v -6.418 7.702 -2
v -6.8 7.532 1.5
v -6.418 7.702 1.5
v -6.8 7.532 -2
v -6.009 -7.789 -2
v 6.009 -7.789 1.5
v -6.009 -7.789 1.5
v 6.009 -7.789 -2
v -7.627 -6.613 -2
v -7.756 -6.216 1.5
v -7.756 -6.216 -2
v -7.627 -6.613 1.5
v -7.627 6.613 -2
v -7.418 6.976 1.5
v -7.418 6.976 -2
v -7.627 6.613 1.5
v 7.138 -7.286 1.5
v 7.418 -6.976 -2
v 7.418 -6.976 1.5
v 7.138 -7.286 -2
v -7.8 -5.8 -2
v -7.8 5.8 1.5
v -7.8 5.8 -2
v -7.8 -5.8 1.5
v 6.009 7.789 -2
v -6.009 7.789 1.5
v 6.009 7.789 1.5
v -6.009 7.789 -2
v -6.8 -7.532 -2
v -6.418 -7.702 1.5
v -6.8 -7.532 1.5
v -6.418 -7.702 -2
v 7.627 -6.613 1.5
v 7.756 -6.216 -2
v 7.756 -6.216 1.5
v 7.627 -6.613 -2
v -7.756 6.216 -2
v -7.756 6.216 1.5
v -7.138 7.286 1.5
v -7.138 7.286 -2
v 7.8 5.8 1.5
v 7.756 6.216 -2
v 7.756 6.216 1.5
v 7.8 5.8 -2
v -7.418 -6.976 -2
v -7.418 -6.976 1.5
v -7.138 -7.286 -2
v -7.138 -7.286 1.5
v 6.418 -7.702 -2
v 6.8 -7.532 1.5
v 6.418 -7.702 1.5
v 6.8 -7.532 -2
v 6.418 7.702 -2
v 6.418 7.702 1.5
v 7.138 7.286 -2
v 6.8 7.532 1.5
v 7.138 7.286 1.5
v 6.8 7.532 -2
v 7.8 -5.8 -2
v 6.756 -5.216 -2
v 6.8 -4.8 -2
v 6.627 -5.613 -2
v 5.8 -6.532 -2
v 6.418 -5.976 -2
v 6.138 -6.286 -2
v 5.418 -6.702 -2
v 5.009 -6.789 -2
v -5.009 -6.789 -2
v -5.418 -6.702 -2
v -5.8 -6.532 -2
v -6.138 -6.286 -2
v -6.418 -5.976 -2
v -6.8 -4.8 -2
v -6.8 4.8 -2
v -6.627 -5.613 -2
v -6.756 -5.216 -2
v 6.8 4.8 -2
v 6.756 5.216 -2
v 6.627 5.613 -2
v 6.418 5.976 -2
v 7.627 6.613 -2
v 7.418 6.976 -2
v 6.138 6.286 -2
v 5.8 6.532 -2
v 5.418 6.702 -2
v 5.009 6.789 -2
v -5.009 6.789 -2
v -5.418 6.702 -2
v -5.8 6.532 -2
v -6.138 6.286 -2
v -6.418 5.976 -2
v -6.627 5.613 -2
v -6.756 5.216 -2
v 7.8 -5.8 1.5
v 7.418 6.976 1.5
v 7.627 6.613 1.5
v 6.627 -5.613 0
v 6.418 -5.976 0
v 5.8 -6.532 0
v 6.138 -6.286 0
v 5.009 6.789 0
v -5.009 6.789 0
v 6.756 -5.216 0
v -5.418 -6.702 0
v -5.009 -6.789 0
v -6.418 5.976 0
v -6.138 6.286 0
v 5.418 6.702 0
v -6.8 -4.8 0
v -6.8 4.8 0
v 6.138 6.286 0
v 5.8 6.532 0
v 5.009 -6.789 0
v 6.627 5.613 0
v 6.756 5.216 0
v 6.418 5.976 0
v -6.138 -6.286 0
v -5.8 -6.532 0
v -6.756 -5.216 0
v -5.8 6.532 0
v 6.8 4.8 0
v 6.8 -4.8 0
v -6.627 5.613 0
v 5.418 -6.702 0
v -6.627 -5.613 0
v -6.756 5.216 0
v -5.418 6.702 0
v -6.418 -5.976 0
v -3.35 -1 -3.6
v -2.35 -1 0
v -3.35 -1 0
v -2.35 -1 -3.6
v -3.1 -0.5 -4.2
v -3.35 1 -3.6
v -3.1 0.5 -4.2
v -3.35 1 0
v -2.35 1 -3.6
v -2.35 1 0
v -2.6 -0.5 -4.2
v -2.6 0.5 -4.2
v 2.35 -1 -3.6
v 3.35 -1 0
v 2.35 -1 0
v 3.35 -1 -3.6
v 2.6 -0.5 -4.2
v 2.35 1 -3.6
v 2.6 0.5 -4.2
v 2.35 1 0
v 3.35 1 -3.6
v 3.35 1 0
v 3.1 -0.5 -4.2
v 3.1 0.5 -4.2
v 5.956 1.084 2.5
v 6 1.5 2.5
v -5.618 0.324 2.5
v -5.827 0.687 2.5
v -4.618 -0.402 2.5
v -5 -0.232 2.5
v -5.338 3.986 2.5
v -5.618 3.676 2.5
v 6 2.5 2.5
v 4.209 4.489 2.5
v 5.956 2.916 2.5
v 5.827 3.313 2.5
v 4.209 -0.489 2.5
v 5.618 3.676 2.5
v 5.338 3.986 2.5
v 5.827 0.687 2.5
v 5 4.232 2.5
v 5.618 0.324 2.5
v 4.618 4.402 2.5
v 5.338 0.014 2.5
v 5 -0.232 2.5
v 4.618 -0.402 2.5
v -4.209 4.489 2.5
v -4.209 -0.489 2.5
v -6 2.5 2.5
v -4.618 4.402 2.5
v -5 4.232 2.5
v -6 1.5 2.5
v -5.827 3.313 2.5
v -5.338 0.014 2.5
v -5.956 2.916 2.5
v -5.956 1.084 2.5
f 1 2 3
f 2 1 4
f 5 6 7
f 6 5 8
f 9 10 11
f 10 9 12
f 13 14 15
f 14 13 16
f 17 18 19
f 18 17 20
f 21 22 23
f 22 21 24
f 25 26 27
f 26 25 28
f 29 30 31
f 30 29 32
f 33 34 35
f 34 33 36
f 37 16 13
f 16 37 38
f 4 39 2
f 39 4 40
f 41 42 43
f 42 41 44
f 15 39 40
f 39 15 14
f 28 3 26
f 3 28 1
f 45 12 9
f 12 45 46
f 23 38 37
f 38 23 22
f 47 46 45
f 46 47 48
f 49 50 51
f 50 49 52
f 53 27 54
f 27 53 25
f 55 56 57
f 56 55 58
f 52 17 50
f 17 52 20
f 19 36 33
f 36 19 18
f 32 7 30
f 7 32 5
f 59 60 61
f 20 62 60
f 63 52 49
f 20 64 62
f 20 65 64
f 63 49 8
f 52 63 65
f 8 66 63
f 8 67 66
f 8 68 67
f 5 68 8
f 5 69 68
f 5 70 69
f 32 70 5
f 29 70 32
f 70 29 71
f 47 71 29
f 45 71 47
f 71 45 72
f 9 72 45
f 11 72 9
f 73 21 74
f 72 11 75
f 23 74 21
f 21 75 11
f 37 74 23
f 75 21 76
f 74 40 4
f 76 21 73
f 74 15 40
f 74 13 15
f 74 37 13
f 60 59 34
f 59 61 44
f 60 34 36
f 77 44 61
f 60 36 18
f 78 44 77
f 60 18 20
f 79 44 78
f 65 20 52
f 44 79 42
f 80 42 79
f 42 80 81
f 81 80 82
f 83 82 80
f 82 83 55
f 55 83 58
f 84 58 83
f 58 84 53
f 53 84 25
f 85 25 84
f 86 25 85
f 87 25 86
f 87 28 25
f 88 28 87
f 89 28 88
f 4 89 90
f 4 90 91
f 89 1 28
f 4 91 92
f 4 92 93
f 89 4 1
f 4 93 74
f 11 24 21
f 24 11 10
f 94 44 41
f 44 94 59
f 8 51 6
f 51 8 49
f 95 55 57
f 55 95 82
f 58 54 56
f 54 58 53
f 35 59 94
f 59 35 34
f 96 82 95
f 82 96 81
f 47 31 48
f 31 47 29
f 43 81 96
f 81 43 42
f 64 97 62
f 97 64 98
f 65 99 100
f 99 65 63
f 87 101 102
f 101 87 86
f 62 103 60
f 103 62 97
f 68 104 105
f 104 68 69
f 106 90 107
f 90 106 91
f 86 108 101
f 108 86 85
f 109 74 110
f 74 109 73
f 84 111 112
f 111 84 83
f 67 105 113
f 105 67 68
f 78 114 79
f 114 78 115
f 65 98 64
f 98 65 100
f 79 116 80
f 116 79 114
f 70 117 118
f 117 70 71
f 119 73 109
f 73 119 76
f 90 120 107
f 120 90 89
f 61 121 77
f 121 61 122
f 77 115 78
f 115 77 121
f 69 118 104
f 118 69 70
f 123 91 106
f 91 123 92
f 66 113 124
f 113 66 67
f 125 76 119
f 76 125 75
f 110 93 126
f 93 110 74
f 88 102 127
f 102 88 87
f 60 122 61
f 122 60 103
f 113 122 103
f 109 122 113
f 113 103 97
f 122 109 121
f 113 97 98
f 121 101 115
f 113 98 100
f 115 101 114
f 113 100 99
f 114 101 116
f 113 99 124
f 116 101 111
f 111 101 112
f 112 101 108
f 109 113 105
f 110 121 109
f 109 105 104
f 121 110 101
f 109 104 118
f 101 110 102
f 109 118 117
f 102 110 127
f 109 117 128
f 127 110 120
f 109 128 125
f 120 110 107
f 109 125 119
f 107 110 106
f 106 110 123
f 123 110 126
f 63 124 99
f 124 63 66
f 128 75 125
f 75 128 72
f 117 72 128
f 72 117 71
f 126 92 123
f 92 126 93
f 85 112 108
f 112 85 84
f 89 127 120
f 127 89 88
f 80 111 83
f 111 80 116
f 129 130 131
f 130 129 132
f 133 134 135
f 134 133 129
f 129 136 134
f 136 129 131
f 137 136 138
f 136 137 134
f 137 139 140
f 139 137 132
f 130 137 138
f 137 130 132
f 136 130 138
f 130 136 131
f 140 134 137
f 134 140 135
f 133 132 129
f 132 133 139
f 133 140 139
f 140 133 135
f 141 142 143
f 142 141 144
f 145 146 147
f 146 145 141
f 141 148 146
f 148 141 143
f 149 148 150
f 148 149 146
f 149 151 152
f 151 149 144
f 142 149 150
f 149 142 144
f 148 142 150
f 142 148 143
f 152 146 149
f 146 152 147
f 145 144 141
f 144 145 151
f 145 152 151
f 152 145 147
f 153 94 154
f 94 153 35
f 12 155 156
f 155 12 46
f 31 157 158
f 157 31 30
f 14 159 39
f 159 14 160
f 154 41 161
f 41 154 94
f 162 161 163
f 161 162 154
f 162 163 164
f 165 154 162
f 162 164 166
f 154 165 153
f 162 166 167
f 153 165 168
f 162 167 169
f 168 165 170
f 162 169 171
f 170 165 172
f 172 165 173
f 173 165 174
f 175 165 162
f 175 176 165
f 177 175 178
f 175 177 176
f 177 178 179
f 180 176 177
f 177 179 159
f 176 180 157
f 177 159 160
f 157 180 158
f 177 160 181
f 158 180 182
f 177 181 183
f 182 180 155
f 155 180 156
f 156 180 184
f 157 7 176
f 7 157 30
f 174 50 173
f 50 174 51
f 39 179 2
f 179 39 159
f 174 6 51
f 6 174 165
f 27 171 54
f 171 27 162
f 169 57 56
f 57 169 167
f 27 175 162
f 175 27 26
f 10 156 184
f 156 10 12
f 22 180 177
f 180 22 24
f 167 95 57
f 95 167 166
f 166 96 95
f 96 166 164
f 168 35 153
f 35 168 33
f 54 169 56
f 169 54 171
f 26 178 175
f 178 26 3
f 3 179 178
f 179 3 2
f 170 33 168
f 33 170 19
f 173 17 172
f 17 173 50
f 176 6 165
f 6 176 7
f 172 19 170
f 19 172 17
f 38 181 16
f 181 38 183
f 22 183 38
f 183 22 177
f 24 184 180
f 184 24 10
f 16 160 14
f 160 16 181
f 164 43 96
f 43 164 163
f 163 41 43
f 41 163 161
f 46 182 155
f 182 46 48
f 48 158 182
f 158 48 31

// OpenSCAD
// file: ../../lib/utils.scad
// 角丸のプレート
module rounded_plate(x, y, r) {
  thickness = 0.0001;
  minkowski () {
    cube([x-r*2, y-r*2, thickness], center = true);
    cylinder(r = r, h = thickness, $fs = 0.1);
  }
}

// ベーシックなキーキャップの外観を定義
module keycap_basic_outer_shape(bottom_size, middle_size, top_size, top_height, skert_height, side_r) {
  hull () {
    translate([0, 0, top_height])
    rounded_plate(top_size, top_size, side_r);
    
    if(middle_size > 0) {
      translate([0, 0, 0])
      rounded_plate(middle_size, middle_size, side_r);
    }
    
    translate([0, 0, -skert_height])
    rounded_plate(bottom_size, bottom_size, side_r);
  }
}

// chocで使われる一般的なキーキャップの形状を定義
module keycap_basic_shape(
  top_size,
  head_height,
  middle_size,
  skert_height,
  bottom_size,
  thickness = 1.0,
  side_r = 1.0) {
  difference () {
    // 外形
    keycap_basic_outer_shape(bottom_size, middle_size, top_size, head_height, skert_height, side_r);
    // くり抜くための外形
    keycap_basic_outer_shape(bottom_size - thickness * 2, middle_size - thickness * 2, top_size - thickness * 2, 0, skert_height+0.005, side_r);
  }
}


// cylindricalな凹みを作る
module head_cylindrical_depress(top_size, top_height, depth) {
  function dish_r(w, d) = (w * w + 4 * d * d) / (8 * d);
  
  hull() {
    angle = 0;
    translate([0, 0, top_height]);
    rotate([- angle, 0, 0])
    translate([0, 0, dish_r(top_size, depth) - depth+top_height])
    rotate([90, 0, 0])
    cylinder(r = dish_r(top_size, depth), h = 60, /* 適当に十分な長さ */ center = true);
  }
}

// Generate dome sphere object
// calc r parameter on https://gist.github.com/masuidrive/b34472d82b07d0efead83aedf5579b78
module dome(width, height, r=0) {
  calc_width = 2 * sqrt(r^2 - (r - height)^2);

  if(abs(width - calc_width) > 0.1) {
    echo("><><><><><><><><><><");
    echo("WARNING: dome arguments are not correct, should be width ", calc_width);
  }

  difference(){
    translate([0, 0, height-r])
      sphere(r = r, $fn = 100);
    translate([0, 0, -r])
      cube([r*2, r*2, r*2], center = true);
  }
}

// https://qiita.com/zk_phi/items/ab99315ebaef66e84aa0
// https://bebebe.hatenablog.jp/entry/2019/06/04/232501
// https://qiita.com/zk_phi/items/ab99315ebaef66e84aa0
// file: ../../lib/choc.scad
// ChocV1の足を作る
module kailh_choc_v1_stem() {
  leg_length = 3.6;
  thin_length = 0.6;

  for (z = [-2.85, 2.85]) {
      translate([z, 0, -leg_length/2])
        hull() {
          cube([1, 2, leg_length], center=true);
          translate([0, 0, -(leg_length/2)-thin_length])
            cube([0.5, 1, 0.001], center=true);
        };
  }
}


module preview_chocv1_switch(DEBUG=true) {
  union() {
    children();

    if(DEBUG == true || DEBUG == "x") {
      translate([20, 20, 0])
      difference() {
        union() {
          children();
          difference() {
            translate([0, 0, -3.35]) import("../lib/choc_v1_switch.stl", convexity=2);
            translate([-10, -10, 0]) cube([20, 20, 20]);
          }
        }
        translate([-10, 0, -10]) cube([20, 20, 20]);
      }
    }

    if(DEBUG == true || DEBUG == "y") {
      translate([-20, -20, 0])
      difference() {
        union() {
          children();
          difference() {
            translate([0, 0, -3.35]) import("../lib/choc_v1_switch.stl", convexity=2);
            translate([-10, -10, 0]) cube([20, 20, 20]);
          }
        }
        translate([0, -10, -10]) cube([20, 20, 20]);
      }
    }
  }
}
// main file
include <../../lib/choc.scad>
include <../../lib/utils.scad>

DEBUG = false;//"x";

preview_chocv1_switch(DEBUG) {
    top_size = 15.6;
    head_height = 1.5;
    middle_size = 0;
    skert_height = 2.0; 
    bottom_size = 15.6;
    thickness = 1.0;
    side_r = 2.0;
    dome_height = 1.0;

  union() {
    hull() {
      translate([0.0, 2.0, dome_height+head_height])
        rounded_plate(12.0, 5.0, side_r);
      translate([0.0, 0.0, head_height])
        rounded_plate(top_size, top_size, side_r);
    }
    keycap_basic_shape(top_size, head_height, middle_size, skert_height, bottom_size, thickness, side_r);
    kailh_choc_v1_stem();
  }
}
